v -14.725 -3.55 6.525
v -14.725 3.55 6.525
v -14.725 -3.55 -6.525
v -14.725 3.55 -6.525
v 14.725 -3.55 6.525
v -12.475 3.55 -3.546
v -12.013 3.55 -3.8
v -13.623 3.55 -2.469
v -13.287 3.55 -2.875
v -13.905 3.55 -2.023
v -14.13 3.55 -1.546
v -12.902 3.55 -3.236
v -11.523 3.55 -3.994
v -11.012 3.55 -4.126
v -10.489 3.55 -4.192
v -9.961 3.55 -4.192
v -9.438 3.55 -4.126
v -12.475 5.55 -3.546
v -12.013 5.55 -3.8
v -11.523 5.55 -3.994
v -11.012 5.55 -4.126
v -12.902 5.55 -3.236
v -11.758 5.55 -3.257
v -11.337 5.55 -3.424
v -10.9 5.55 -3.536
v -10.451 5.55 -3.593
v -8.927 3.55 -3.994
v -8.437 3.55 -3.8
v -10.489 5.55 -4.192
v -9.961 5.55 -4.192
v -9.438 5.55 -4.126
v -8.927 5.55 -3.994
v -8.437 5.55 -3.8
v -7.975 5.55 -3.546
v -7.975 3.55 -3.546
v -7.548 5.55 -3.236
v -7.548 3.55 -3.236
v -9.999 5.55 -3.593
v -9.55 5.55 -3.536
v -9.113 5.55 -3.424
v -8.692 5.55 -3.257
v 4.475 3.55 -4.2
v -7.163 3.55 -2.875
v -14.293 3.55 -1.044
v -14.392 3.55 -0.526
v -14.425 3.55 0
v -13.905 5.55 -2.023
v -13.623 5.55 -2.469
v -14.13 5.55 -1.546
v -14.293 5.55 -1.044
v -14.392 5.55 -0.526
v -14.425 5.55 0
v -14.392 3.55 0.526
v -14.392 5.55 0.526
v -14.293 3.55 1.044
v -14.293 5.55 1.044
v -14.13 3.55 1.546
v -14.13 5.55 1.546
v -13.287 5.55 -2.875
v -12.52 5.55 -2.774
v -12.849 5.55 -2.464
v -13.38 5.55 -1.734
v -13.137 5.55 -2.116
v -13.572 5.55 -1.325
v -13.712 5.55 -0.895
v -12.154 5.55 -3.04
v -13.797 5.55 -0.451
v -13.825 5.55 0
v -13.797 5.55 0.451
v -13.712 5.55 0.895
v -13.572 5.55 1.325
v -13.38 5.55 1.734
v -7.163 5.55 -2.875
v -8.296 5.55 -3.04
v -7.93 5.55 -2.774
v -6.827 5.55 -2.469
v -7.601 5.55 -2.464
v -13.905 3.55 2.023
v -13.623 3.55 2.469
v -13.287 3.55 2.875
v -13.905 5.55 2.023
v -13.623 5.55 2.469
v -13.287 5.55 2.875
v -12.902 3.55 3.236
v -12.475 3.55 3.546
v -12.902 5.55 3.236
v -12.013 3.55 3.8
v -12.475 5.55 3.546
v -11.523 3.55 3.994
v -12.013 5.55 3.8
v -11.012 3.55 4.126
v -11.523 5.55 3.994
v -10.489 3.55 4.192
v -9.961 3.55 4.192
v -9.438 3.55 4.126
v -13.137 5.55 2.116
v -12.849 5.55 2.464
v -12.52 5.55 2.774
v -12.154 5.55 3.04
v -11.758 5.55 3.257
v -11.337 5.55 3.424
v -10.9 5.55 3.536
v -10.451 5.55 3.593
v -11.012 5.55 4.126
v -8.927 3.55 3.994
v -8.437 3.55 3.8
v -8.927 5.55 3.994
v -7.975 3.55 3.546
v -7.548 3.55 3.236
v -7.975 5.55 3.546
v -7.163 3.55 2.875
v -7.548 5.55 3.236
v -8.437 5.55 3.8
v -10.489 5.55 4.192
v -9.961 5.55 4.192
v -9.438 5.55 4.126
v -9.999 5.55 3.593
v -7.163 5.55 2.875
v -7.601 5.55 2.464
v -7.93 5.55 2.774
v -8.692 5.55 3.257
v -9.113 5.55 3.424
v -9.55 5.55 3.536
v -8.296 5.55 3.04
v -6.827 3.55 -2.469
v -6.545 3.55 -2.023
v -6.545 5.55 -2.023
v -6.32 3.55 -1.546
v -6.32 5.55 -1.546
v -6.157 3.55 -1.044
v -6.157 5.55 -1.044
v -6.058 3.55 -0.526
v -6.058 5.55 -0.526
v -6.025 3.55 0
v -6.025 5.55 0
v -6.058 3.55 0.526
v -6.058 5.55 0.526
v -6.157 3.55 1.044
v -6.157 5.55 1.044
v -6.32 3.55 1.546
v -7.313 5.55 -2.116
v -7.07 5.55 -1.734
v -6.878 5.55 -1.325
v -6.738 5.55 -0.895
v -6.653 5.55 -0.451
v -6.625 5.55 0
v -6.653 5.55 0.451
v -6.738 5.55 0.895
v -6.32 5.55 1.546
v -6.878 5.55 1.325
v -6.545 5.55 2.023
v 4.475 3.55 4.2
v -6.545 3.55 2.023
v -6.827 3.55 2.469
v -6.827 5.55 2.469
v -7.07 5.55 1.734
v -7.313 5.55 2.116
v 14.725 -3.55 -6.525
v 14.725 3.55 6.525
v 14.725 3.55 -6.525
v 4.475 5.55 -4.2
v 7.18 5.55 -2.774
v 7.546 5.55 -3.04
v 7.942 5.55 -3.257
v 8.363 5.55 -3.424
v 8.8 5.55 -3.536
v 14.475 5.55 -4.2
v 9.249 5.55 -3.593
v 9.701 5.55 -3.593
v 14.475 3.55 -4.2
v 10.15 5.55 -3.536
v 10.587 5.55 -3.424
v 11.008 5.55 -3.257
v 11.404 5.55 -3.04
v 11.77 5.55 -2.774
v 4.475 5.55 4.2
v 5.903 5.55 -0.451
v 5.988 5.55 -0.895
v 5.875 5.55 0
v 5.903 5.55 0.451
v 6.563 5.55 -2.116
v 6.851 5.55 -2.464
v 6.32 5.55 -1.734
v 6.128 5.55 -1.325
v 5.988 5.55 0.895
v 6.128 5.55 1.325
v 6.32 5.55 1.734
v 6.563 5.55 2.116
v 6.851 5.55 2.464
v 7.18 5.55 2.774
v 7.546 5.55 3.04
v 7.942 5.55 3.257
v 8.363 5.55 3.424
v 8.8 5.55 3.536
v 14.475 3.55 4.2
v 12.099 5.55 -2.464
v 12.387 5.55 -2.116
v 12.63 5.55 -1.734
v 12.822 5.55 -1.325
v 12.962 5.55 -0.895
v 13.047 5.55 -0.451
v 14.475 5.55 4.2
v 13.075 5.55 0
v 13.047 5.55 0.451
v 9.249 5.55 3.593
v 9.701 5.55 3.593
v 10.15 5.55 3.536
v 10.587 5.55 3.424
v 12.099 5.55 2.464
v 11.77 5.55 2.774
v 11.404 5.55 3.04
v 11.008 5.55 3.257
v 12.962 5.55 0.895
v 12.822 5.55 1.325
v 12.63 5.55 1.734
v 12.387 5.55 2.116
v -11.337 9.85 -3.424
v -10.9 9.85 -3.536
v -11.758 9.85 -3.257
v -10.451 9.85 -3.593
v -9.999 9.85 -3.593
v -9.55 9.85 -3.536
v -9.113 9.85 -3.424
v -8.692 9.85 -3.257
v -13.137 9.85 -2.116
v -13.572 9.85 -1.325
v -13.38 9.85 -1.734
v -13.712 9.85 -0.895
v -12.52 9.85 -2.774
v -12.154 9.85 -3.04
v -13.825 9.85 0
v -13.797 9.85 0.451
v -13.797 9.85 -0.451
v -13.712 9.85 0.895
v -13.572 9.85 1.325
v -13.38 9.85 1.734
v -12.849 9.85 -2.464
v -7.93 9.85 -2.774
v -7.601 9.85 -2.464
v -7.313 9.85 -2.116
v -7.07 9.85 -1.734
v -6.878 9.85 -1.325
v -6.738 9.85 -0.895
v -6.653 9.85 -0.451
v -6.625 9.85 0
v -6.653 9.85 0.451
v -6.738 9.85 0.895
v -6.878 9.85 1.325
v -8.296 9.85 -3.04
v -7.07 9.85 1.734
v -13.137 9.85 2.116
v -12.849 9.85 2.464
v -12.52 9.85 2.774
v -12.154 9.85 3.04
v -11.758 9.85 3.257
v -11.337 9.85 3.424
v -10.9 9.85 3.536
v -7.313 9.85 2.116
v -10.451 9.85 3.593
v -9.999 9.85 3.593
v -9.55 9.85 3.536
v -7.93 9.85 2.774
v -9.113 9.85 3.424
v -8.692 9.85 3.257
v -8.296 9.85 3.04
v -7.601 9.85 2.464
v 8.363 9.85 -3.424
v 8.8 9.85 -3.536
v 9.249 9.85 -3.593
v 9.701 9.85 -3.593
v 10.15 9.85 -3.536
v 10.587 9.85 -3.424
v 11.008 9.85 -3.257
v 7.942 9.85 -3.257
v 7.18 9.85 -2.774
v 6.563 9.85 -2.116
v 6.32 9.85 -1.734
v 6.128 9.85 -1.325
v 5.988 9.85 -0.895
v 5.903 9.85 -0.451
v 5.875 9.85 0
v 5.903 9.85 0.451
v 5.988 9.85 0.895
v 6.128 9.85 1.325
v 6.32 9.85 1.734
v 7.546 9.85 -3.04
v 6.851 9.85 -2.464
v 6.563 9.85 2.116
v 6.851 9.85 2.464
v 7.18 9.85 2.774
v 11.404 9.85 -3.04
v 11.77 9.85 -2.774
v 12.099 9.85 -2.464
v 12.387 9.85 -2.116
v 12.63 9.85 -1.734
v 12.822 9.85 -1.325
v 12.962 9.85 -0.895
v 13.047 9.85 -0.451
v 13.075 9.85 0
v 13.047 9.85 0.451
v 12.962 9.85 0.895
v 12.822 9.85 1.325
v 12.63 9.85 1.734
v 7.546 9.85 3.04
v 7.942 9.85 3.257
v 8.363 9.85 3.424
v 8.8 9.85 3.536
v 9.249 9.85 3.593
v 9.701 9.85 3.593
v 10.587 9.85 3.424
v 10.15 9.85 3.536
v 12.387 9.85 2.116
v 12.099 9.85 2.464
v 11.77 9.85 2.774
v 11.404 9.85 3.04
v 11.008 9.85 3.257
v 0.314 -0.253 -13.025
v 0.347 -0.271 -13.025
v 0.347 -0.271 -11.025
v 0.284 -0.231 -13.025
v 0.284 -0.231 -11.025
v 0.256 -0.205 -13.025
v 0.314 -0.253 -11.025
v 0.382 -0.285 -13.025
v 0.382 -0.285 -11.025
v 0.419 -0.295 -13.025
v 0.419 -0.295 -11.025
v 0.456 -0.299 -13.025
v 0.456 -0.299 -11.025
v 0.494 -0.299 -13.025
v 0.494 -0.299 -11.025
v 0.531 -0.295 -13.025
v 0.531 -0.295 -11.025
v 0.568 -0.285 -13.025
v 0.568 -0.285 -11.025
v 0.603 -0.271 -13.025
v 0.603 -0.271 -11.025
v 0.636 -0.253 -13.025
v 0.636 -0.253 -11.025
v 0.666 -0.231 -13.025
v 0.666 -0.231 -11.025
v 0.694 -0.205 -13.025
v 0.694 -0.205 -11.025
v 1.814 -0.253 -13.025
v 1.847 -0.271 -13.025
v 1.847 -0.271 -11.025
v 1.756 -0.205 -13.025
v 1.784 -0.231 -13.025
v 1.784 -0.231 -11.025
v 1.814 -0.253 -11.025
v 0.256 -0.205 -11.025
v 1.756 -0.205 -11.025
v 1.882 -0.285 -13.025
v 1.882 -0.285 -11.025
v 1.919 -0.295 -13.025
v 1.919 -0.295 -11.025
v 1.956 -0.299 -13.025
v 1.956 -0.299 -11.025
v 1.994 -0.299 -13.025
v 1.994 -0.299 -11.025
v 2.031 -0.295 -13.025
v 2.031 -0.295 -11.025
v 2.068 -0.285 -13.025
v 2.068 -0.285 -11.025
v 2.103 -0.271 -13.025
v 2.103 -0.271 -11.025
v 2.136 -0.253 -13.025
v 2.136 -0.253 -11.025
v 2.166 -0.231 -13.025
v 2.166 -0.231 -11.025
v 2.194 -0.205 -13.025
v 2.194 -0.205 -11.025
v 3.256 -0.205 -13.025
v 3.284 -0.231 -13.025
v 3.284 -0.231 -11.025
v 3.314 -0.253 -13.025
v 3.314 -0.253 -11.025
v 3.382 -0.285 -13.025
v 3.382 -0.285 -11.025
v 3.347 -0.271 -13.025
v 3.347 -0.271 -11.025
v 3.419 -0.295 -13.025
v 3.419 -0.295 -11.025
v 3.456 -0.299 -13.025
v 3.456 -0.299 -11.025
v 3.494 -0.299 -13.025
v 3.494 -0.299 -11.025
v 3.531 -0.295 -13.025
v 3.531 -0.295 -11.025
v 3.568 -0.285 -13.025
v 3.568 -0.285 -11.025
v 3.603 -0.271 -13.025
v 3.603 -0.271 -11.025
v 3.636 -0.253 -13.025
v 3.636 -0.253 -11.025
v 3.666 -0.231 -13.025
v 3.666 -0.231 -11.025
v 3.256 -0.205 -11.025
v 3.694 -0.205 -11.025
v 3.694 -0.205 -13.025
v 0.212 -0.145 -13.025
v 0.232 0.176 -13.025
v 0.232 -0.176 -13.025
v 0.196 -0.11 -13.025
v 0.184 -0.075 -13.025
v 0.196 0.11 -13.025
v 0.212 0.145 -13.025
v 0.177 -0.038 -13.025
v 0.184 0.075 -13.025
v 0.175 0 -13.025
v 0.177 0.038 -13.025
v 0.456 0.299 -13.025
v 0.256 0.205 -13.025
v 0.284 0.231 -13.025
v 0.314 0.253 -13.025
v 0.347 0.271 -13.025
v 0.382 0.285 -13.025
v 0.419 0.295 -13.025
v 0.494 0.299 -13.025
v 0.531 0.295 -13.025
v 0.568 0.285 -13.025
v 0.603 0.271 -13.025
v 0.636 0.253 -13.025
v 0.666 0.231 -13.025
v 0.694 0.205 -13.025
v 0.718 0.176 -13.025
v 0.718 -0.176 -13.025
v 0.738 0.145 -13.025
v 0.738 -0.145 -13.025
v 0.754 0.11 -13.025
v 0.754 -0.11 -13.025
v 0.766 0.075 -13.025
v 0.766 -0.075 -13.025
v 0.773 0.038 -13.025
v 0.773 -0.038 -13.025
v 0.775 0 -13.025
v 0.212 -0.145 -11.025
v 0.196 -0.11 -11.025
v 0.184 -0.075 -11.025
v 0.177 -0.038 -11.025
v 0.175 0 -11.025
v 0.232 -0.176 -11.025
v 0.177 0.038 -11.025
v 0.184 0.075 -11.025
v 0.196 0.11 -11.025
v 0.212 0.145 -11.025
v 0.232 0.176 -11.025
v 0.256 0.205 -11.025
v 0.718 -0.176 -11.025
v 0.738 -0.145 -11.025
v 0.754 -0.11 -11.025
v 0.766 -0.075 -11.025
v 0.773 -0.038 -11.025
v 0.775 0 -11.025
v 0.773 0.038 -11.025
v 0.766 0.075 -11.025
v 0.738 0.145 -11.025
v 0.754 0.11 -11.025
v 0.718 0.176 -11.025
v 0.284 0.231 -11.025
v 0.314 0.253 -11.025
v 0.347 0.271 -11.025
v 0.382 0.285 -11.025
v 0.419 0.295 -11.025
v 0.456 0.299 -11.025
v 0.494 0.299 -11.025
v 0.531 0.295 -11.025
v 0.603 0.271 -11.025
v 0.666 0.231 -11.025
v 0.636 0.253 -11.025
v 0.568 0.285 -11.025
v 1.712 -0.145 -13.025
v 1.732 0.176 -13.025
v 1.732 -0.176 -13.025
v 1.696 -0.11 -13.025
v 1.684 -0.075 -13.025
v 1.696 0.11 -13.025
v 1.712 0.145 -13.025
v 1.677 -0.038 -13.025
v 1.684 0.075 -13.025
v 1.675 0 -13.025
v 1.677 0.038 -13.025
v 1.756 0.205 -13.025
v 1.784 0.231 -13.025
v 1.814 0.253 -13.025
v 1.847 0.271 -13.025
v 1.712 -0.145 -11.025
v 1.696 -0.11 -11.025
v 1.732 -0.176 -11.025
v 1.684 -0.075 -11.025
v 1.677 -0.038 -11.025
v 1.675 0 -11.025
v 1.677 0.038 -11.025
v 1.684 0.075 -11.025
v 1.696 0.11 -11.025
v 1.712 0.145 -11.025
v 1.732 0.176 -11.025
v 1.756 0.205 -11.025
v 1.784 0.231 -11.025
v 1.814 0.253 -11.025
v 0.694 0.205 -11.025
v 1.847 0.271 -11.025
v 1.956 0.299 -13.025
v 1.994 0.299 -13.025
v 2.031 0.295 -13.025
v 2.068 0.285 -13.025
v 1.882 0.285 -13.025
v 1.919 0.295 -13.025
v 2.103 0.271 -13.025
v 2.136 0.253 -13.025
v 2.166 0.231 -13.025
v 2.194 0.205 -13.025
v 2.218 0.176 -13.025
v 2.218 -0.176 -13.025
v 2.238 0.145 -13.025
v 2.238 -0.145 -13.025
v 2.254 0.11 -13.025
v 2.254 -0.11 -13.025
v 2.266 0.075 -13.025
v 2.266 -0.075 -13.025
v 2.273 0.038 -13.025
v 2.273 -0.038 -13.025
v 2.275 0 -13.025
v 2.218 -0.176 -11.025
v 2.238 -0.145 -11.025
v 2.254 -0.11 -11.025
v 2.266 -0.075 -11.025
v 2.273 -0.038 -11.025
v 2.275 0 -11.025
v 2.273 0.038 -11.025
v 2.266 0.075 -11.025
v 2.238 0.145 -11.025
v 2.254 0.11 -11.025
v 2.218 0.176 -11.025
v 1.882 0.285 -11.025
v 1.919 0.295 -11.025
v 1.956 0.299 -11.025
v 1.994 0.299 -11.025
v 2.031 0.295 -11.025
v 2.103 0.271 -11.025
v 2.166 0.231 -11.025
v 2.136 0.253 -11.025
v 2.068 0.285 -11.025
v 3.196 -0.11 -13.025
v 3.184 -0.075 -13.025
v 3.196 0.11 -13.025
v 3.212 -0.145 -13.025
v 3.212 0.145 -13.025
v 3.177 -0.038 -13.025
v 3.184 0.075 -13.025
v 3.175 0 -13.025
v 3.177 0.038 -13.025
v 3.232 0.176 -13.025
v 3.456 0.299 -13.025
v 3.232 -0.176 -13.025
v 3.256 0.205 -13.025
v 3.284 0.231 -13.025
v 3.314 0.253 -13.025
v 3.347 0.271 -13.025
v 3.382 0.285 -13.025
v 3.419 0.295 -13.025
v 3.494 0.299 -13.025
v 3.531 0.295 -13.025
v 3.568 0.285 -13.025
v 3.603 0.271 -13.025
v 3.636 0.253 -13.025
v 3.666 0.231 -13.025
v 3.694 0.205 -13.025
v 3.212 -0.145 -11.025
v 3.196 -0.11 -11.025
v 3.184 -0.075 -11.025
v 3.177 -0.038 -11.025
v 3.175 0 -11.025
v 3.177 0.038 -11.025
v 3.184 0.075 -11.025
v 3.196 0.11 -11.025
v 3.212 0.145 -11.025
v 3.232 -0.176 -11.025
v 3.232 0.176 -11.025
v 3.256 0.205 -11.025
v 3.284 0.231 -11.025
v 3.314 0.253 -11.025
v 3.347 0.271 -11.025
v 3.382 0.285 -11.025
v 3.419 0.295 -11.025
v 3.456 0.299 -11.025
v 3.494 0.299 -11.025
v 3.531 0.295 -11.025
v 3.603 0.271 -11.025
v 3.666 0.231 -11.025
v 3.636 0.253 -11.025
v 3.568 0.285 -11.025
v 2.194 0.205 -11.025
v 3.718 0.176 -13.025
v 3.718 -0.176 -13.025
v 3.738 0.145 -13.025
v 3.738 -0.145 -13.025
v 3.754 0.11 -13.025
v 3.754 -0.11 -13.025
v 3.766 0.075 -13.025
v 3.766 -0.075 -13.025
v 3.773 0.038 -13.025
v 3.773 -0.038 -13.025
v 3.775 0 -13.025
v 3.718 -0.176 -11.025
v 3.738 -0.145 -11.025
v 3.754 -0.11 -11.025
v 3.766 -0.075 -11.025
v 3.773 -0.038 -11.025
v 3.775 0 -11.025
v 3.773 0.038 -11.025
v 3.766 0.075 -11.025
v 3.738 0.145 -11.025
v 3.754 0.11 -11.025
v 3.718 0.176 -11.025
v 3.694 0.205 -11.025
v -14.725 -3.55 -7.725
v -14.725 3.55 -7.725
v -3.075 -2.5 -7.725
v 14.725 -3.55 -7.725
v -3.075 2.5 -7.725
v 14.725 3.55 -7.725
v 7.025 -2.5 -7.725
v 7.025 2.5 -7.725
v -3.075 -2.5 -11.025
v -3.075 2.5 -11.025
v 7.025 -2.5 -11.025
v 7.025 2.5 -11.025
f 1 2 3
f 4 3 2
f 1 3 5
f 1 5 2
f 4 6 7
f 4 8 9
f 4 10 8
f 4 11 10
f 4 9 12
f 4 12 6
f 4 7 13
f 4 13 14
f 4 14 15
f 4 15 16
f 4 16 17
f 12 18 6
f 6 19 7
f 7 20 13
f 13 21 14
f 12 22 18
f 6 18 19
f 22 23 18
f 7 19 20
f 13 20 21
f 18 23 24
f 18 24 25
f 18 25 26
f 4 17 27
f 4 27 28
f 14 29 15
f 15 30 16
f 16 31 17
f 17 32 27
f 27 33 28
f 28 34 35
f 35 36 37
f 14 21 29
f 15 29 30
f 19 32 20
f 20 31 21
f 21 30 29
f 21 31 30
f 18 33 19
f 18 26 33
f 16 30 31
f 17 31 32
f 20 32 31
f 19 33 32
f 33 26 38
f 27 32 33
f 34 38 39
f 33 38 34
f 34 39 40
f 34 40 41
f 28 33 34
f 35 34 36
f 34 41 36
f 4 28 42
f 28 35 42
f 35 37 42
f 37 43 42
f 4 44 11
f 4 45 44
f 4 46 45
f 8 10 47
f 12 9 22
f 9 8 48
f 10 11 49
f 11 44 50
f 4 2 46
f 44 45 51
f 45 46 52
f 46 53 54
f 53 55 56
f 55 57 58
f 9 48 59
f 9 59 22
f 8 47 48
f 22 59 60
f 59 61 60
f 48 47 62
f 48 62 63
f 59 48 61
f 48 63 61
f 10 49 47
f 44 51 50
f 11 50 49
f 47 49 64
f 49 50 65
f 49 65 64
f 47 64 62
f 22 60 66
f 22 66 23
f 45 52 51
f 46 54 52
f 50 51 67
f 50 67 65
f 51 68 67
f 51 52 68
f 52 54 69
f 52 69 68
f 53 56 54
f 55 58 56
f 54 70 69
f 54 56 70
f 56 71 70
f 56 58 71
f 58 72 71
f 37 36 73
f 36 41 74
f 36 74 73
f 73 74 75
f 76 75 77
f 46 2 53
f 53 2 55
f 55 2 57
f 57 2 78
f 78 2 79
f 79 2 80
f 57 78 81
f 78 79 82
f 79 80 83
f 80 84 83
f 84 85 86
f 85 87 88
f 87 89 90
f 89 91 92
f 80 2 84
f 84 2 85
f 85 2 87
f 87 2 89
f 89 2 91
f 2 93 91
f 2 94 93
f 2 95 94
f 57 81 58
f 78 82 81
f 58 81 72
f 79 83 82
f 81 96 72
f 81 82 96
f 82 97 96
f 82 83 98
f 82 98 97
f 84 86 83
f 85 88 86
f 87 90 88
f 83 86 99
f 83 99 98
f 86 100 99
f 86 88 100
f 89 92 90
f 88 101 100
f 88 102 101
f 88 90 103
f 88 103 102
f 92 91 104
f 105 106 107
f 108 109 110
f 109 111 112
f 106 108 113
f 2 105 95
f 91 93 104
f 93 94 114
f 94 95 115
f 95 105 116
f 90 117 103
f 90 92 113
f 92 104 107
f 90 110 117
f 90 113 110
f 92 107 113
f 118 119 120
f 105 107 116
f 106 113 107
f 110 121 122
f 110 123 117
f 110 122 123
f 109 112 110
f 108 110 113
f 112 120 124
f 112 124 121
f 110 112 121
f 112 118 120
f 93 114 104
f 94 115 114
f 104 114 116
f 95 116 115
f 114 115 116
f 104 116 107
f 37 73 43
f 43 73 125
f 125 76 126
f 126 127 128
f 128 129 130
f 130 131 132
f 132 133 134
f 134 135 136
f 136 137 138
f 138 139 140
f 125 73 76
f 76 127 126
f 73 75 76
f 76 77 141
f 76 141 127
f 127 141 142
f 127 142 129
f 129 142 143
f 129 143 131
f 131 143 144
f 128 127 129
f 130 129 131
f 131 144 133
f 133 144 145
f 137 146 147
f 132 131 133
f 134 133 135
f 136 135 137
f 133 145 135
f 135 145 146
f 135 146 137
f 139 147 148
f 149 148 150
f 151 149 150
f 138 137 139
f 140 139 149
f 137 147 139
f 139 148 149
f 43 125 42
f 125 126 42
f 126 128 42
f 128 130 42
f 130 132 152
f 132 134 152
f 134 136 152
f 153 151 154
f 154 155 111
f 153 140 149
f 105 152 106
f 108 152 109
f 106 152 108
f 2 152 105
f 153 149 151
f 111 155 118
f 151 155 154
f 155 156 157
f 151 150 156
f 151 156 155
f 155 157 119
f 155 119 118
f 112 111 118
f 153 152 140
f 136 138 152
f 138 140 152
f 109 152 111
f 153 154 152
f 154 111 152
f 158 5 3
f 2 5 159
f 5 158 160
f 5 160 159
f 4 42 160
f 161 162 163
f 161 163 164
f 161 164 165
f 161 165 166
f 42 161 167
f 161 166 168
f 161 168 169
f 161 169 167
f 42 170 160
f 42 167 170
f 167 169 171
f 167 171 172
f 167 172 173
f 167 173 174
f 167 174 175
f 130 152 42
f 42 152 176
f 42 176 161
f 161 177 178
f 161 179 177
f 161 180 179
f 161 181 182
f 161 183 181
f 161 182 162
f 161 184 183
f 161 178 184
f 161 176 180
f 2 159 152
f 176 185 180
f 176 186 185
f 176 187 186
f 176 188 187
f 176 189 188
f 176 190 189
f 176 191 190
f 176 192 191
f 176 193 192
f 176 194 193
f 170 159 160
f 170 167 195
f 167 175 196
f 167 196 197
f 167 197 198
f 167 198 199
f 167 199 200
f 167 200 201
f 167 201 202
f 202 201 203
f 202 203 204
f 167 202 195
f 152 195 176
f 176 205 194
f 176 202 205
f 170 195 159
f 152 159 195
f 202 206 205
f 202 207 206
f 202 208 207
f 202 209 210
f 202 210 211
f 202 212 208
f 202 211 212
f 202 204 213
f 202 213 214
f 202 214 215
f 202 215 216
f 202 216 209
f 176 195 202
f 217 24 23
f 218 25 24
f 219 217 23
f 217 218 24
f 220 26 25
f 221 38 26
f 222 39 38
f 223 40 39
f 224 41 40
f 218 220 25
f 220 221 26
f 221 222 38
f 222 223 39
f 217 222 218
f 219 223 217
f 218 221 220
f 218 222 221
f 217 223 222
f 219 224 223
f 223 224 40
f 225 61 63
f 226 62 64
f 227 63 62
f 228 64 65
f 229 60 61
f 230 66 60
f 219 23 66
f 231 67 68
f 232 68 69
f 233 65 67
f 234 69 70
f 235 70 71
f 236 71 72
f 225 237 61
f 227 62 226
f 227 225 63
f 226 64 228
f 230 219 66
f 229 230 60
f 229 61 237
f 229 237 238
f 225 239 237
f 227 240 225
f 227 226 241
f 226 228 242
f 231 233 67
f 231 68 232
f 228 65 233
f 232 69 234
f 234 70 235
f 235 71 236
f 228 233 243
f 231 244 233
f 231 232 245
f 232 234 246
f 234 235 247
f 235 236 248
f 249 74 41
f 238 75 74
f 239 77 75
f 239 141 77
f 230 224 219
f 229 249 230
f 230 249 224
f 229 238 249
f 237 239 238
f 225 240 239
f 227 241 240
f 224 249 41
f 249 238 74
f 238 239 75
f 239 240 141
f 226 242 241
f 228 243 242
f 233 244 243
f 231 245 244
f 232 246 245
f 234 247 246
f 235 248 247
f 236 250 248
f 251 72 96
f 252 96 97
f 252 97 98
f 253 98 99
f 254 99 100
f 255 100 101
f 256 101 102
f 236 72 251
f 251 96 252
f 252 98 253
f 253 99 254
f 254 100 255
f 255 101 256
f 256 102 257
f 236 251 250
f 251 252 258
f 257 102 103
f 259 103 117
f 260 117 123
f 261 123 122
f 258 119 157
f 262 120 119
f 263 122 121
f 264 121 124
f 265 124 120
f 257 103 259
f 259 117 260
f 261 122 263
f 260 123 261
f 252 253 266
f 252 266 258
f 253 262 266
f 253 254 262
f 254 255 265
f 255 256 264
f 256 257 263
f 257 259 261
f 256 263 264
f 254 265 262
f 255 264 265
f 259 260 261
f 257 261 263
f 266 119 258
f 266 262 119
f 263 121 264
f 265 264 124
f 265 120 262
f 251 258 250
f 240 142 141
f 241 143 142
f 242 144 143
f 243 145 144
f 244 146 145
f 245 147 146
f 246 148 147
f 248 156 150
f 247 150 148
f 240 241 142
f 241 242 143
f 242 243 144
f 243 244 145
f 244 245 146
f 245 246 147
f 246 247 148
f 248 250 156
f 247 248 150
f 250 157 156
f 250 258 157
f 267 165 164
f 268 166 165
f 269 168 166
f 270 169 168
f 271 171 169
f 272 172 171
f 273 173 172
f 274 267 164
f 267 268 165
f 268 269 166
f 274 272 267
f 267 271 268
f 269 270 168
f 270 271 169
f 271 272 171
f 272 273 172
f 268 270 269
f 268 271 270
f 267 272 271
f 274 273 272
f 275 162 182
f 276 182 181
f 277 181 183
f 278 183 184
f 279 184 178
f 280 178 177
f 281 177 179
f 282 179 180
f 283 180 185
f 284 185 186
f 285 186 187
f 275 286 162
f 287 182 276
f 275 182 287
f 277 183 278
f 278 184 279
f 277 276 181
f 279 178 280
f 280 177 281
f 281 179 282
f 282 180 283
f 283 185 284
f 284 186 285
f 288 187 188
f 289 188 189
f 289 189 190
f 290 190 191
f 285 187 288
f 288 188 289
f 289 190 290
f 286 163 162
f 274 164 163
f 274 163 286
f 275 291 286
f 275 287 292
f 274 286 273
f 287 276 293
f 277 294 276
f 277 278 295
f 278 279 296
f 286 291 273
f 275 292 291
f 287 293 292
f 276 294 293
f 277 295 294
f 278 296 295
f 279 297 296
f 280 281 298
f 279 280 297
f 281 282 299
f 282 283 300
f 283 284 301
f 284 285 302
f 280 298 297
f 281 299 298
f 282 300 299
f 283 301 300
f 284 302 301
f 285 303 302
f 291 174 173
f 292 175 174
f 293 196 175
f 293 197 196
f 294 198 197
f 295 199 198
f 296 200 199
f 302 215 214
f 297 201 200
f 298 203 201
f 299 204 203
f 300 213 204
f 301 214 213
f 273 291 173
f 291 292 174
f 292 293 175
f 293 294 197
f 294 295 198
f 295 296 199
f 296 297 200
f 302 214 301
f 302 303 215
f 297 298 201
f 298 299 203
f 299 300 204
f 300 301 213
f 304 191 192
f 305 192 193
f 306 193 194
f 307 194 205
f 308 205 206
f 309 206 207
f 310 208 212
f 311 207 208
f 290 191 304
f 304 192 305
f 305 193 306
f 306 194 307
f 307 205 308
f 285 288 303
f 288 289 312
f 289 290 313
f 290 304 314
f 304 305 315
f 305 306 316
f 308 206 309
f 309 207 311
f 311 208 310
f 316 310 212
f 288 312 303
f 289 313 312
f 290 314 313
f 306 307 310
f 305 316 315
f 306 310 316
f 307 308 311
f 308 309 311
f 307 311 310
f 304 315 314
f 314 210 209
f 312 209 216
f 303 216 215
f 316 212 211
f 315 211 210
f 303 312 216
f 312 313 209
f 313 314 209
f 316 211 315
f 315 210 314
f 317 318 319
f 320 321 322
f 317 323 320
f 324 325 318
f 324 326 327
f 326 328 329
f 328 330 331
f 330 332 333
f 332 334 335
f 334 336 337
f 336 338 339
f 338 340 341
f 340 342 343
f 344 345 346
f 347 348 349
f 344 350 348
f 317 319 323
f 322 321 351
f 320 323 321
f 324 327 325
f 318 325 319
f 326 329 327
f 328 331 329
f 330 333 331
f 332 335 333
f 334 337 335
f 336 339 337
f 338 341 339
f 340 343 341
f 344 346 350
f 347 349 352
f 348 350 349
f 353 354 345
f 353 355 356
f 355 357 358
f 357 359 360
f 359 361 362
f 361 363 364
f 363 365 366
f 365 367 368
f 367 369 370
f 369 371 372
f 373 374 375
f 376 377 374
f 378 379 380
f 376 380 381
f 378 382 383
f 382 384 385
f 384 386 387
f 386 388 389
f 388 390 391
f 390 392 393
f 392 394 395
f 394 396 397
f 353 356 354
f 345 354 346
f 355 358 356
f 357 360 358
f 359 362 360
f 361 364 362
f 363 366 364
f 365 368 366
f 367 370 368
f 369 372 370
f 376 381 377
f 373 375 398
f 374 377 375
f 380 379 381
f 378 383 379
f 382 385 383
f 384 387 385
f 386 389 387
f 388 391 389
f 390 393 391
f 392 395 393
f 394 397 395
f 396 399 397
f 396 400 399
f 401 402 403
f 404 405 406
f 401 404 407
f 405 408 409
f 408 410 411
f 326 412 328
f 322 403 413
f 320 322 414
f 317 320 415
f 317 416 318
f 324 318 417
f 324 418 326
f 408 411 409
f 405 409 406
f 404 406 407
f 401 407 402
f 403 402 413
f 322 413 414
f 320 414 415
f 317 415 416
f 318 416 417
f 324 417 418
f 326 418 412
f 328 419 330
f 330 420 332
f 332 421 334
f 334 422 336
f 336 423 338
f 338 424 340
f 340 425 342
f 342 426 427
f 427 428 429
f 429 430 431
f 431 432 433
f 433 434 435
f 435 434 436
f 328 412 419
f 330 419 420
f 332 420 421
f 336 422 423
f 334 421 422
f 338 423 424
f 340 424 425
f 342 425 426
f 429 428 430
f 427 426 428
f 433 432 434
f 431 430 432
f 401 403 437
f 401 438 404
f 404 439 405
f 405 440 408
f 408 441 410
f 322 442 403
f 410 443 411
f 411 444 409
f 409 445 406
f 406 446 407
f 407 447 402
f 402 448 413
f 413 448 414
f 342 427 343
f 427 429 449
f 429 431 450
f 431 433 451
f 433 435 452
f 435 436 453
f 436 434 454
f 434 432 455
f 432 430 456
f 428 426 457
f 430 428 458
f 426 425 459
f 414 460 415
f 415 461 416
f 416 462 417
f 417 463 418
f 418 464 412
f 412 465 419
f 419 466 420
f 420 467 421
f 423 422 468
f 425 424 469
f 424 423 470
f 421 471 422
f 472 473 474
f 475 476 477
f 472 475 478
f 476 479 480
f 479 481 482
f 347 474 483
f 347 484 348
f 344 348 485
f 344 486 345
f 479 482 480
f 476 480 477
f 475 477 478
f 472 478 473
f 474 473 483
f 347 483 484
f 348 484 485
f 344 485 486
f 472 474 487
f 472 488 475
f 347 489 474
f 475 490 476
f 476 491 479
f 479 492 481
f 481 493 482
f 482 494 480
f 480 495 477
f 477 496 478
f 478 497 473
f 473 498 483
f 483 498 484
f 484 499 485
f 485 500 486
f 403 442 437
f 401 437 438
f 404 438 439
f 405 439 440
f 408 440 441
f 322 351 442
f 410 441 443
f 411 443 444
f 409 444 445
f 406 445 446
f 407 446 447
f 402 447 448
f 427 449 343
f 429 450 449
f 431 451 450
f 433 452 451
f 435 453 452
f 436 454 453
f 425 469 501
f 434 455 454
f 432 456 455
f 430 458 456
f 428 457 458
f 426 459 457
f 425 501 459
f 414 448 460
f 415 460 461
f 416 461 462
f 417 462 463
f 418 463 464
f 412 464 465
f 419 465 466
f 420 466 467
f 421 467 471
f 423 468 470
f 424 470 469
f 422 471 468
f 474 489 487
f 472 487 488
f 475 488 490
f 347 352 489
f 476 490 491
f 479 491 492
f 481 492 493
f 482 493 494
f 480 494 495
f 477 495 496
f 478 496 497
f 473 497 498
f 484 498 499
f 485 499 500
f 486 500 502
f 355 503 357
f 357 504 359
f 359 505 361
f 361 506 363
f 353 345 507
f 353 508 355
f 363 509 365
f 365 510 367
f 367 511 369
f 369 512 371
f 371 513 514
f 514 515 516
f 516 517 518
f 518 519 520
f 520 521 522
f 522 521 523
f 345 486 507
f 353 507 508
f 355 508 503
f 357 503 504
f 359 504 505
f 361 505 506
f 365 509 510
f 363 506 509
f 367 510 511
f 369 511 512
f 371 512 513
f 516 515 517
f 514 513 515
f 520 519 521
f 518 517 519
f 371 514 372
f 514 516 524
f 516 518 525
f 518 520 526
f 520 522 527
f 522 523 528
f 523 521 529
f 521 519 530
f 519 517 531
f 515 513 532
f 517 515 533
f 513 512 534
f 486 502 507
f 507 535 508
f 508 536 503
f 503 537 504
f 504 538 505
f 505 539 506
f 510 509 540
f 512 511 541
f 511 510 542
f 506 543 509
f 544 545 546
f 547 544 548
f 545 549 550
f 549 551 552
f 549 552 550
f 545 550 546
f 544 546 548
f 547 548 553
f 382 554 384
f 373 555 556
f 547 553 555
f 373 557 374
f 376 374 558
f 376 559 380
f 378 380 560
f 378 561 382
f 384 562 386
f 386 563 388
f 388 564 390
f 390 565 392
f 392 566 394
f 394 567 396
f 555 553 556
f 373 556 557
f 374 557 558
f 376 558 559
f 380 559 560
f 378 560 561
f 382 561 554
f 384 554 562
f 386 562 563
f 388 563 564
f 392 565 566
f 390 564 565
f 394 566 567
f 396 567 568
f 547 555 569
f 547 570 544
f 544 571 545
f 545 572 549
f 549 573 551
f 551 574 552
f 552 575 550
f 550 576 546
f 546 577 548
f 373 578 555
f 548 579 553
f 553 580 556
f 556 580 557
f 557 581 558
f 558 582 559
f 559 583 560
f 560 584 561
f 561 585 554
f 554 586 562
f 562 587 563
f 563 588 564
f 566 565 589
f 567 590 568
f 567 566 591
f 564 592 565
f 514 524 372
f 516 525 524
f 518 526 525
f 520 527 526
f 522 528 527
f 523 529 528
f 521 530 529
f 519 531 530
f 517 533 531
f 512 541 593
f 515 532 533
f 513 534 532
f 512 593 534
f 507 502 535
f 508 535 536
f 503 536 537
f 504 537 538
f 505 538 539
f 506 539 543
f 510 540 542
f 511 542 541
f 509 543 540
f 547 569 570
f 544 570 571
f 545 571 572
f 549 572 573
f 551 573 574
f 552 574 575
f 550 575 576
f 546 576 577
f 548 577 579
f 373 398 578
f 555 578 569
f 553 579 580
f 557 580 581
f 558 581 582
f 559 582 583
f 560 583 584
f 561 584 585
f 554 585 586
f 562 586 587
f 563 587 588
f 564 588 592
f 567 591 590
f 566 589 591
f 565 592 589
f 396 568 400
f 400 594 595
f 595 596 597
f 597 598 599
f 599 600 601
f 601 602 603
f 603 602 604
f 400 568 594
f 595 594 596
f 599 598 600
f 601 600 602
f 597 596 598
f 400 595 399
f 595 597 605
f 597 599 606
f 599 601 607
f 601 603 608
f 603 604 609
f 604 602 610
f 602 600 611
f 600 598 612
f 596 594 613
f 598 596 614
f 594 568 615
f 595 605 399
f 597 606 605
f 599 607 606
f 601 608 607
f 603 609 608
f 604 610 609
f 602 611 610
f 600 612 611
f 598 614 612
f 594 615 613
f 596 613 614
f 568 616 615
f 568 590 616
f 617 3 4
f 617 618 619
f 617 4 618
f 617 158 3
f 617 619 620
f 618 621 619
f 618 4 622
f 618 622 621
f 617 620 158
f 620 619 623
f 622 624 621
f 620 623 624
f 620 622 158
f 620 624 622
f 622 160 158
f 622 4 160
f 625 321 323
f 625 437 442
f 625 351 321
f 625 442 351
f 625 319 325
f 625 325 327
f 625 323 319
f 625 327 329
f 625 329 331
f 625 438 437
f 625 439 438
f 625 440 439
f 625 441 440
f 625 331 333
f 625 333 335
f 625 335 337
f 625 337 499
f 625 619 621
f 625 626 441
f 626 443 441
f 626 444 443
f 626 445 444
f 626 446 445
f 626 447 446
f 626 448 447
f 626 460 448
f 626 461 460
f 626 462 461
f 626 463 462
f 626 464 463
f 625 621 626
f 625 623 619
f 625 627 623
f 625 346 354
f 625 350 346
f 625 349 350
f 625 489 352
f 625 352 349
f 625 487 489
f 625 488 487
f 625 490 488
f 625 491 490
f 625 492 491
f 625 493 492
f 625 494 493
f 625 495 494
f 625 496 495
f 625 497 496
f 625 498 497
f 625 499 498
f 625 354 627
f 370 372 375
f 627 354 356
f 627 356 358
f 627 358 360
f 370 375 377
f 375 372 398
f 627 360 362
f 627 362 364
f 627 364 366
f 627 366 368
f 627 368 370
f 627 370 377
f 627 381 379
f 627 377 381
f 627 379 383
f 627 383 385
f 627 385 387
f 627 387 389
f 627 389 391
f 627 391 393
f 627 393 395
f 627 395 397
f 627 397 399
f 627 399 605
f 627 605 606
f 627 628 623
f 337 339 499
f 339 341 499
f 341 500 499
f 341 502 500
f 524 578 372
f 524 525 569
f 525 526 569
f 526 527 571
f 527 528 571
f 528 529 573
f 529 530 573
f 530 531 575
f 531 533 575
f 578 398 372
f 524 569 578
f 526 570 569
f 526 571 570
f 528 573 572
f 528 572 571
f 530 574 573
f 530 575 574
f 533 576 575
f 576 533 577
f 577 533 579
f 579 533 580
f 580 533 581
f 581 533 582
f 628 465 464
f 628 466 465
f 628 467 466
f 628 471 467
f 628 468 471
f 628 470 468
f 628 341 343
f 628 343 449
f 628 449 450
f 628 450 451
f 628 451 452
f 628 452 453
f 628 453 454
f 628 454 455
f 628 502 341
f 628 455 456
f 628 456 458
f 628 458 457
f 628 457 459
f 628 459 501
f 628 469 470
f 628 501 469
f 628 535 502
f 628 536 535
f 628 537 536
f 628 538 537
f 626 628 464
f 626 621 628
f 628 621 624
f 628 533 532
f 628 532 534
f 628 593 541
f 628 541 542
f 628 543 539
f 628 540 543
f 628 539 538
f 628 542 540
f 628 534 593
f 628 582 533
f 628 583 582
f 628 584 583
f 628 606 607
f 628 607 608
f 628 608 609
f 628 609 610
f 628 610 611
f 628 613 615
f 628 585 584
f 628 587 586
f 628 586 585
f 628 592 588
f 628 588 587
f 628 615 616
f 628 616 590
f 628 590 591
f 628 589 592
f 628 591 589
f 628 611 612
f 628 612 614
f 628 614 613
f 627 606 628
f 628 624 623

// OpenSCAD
// Sharp GP2Y0D413K0F Distance Measuring Sensor
// Unit: mm
// Coordinate System: 
//   - Origin (0,0,0): Center of the main lens case body
//   - -Z direction: Mounting side (PWB / Connector)
//   - +Y direction: Sensor front (Lenses)

$fn = 50;

// Color Definitions
color_case = [0.15, 0.15, 0.15]; // Carbonic ABS (Dark Gray)
color_pwb = [0.65, 0.45, 0.2];   // Paper Phenol (Brownish Yellow)
color_conn = [0.92, 0.92, 0.88]; // Connector Housing (Ivory/White)
color_lens = [0.08, 0.05, 0.12]; // Visible light cut-off resin (Dark Violet)
color_pin = [0.8, 0.8, 0.8];     // Metal Pins (Silver)

module gp2y0d413k0f() {
    // Principal Dimensions
    width = 29.45;       // X-axis width
    depth = 7.1;         // Y-axis thickness of the main body
    height = 13.05;      // Z-axis height of the lens case
    
    pwb_w = 29.45;
    pwb_d = 7.1;
    pwb_h = 1.2;
    
    conn_w = 10.1;
    conn_d = 5.0;        // Estimated depth of the connector
    conn_h = 3.3;        // Protrusion below PWB
    conn_x_offset = 1.975; // Offset to the right based on datasheet dimensions
    
    // Lens positions relative to the center
    emitter_x = -width/2 + 4.5;      // -10.225 (Left side)
    detector_x = emitter_x + 19.7;   // 9.475 (Right side)
    
    // 1. Lens Case Body
    color(color_case) {
        // Main block
        cube([width, depth, height], center=true);
        
        // Light Emitter Holder (Ø8.4, 2mm protrusion)
        translate([emitter_x, depth/2, 0])
            rotate([-90, 0, 0])
                cylinder(d=8.4, h=2.0);
                
        // Light Detector Holder (Rectangular base)
        translate([detector_x, depth/2 + 1.0, 0])
            cube([10.0, 2.0, 8.4], center=true);
    }
    
    // 2. Lenses
    color(color_lens) {
        // Emitter Lens (Ø7.2, total 6.3mm from body front face)
        translate([emitter_x, depth/2 + 2.0, 0])
            rotate([-90, 0, 0])
                cylinder(d=7.2, h=4.3);
                
        // Detector Lens (Ø7.2)
        translate([detector_x, depth/2 + 2.0, 0])
            rotate([-90, 0, 0])
                cylinder(d=7.2, h=4.3);
    }
    
    // 3. PWB (Printed Wiring Board)
    color(color_pwb) {
        translate([0, 0, -height/2 - pwb_h/2])
            cube([pwb_w, pwb_d, pwb_h], center=true);
    }
    
    // 4. Connector Housing
    color(color_conn) {
        translate([conn_x_offset, 0, -height/2 - pwb_h - conn_h/2])
            cube([conn_w, conn_d, conn_h], center=true);
    }
    
    // 5. Connector Pins (3 Pins)
    color(color_pin) {
        for (i = [-1 : 1]) {
            translate([conn_x_offset + i * 1.5, 0, -height/2 - pwb_h - conn_h - 1.0])
                cylinder(d=0.6, h=2.0, center=true);
        }
    }
}

// Render the assembly
gp2y0d413k0f();
